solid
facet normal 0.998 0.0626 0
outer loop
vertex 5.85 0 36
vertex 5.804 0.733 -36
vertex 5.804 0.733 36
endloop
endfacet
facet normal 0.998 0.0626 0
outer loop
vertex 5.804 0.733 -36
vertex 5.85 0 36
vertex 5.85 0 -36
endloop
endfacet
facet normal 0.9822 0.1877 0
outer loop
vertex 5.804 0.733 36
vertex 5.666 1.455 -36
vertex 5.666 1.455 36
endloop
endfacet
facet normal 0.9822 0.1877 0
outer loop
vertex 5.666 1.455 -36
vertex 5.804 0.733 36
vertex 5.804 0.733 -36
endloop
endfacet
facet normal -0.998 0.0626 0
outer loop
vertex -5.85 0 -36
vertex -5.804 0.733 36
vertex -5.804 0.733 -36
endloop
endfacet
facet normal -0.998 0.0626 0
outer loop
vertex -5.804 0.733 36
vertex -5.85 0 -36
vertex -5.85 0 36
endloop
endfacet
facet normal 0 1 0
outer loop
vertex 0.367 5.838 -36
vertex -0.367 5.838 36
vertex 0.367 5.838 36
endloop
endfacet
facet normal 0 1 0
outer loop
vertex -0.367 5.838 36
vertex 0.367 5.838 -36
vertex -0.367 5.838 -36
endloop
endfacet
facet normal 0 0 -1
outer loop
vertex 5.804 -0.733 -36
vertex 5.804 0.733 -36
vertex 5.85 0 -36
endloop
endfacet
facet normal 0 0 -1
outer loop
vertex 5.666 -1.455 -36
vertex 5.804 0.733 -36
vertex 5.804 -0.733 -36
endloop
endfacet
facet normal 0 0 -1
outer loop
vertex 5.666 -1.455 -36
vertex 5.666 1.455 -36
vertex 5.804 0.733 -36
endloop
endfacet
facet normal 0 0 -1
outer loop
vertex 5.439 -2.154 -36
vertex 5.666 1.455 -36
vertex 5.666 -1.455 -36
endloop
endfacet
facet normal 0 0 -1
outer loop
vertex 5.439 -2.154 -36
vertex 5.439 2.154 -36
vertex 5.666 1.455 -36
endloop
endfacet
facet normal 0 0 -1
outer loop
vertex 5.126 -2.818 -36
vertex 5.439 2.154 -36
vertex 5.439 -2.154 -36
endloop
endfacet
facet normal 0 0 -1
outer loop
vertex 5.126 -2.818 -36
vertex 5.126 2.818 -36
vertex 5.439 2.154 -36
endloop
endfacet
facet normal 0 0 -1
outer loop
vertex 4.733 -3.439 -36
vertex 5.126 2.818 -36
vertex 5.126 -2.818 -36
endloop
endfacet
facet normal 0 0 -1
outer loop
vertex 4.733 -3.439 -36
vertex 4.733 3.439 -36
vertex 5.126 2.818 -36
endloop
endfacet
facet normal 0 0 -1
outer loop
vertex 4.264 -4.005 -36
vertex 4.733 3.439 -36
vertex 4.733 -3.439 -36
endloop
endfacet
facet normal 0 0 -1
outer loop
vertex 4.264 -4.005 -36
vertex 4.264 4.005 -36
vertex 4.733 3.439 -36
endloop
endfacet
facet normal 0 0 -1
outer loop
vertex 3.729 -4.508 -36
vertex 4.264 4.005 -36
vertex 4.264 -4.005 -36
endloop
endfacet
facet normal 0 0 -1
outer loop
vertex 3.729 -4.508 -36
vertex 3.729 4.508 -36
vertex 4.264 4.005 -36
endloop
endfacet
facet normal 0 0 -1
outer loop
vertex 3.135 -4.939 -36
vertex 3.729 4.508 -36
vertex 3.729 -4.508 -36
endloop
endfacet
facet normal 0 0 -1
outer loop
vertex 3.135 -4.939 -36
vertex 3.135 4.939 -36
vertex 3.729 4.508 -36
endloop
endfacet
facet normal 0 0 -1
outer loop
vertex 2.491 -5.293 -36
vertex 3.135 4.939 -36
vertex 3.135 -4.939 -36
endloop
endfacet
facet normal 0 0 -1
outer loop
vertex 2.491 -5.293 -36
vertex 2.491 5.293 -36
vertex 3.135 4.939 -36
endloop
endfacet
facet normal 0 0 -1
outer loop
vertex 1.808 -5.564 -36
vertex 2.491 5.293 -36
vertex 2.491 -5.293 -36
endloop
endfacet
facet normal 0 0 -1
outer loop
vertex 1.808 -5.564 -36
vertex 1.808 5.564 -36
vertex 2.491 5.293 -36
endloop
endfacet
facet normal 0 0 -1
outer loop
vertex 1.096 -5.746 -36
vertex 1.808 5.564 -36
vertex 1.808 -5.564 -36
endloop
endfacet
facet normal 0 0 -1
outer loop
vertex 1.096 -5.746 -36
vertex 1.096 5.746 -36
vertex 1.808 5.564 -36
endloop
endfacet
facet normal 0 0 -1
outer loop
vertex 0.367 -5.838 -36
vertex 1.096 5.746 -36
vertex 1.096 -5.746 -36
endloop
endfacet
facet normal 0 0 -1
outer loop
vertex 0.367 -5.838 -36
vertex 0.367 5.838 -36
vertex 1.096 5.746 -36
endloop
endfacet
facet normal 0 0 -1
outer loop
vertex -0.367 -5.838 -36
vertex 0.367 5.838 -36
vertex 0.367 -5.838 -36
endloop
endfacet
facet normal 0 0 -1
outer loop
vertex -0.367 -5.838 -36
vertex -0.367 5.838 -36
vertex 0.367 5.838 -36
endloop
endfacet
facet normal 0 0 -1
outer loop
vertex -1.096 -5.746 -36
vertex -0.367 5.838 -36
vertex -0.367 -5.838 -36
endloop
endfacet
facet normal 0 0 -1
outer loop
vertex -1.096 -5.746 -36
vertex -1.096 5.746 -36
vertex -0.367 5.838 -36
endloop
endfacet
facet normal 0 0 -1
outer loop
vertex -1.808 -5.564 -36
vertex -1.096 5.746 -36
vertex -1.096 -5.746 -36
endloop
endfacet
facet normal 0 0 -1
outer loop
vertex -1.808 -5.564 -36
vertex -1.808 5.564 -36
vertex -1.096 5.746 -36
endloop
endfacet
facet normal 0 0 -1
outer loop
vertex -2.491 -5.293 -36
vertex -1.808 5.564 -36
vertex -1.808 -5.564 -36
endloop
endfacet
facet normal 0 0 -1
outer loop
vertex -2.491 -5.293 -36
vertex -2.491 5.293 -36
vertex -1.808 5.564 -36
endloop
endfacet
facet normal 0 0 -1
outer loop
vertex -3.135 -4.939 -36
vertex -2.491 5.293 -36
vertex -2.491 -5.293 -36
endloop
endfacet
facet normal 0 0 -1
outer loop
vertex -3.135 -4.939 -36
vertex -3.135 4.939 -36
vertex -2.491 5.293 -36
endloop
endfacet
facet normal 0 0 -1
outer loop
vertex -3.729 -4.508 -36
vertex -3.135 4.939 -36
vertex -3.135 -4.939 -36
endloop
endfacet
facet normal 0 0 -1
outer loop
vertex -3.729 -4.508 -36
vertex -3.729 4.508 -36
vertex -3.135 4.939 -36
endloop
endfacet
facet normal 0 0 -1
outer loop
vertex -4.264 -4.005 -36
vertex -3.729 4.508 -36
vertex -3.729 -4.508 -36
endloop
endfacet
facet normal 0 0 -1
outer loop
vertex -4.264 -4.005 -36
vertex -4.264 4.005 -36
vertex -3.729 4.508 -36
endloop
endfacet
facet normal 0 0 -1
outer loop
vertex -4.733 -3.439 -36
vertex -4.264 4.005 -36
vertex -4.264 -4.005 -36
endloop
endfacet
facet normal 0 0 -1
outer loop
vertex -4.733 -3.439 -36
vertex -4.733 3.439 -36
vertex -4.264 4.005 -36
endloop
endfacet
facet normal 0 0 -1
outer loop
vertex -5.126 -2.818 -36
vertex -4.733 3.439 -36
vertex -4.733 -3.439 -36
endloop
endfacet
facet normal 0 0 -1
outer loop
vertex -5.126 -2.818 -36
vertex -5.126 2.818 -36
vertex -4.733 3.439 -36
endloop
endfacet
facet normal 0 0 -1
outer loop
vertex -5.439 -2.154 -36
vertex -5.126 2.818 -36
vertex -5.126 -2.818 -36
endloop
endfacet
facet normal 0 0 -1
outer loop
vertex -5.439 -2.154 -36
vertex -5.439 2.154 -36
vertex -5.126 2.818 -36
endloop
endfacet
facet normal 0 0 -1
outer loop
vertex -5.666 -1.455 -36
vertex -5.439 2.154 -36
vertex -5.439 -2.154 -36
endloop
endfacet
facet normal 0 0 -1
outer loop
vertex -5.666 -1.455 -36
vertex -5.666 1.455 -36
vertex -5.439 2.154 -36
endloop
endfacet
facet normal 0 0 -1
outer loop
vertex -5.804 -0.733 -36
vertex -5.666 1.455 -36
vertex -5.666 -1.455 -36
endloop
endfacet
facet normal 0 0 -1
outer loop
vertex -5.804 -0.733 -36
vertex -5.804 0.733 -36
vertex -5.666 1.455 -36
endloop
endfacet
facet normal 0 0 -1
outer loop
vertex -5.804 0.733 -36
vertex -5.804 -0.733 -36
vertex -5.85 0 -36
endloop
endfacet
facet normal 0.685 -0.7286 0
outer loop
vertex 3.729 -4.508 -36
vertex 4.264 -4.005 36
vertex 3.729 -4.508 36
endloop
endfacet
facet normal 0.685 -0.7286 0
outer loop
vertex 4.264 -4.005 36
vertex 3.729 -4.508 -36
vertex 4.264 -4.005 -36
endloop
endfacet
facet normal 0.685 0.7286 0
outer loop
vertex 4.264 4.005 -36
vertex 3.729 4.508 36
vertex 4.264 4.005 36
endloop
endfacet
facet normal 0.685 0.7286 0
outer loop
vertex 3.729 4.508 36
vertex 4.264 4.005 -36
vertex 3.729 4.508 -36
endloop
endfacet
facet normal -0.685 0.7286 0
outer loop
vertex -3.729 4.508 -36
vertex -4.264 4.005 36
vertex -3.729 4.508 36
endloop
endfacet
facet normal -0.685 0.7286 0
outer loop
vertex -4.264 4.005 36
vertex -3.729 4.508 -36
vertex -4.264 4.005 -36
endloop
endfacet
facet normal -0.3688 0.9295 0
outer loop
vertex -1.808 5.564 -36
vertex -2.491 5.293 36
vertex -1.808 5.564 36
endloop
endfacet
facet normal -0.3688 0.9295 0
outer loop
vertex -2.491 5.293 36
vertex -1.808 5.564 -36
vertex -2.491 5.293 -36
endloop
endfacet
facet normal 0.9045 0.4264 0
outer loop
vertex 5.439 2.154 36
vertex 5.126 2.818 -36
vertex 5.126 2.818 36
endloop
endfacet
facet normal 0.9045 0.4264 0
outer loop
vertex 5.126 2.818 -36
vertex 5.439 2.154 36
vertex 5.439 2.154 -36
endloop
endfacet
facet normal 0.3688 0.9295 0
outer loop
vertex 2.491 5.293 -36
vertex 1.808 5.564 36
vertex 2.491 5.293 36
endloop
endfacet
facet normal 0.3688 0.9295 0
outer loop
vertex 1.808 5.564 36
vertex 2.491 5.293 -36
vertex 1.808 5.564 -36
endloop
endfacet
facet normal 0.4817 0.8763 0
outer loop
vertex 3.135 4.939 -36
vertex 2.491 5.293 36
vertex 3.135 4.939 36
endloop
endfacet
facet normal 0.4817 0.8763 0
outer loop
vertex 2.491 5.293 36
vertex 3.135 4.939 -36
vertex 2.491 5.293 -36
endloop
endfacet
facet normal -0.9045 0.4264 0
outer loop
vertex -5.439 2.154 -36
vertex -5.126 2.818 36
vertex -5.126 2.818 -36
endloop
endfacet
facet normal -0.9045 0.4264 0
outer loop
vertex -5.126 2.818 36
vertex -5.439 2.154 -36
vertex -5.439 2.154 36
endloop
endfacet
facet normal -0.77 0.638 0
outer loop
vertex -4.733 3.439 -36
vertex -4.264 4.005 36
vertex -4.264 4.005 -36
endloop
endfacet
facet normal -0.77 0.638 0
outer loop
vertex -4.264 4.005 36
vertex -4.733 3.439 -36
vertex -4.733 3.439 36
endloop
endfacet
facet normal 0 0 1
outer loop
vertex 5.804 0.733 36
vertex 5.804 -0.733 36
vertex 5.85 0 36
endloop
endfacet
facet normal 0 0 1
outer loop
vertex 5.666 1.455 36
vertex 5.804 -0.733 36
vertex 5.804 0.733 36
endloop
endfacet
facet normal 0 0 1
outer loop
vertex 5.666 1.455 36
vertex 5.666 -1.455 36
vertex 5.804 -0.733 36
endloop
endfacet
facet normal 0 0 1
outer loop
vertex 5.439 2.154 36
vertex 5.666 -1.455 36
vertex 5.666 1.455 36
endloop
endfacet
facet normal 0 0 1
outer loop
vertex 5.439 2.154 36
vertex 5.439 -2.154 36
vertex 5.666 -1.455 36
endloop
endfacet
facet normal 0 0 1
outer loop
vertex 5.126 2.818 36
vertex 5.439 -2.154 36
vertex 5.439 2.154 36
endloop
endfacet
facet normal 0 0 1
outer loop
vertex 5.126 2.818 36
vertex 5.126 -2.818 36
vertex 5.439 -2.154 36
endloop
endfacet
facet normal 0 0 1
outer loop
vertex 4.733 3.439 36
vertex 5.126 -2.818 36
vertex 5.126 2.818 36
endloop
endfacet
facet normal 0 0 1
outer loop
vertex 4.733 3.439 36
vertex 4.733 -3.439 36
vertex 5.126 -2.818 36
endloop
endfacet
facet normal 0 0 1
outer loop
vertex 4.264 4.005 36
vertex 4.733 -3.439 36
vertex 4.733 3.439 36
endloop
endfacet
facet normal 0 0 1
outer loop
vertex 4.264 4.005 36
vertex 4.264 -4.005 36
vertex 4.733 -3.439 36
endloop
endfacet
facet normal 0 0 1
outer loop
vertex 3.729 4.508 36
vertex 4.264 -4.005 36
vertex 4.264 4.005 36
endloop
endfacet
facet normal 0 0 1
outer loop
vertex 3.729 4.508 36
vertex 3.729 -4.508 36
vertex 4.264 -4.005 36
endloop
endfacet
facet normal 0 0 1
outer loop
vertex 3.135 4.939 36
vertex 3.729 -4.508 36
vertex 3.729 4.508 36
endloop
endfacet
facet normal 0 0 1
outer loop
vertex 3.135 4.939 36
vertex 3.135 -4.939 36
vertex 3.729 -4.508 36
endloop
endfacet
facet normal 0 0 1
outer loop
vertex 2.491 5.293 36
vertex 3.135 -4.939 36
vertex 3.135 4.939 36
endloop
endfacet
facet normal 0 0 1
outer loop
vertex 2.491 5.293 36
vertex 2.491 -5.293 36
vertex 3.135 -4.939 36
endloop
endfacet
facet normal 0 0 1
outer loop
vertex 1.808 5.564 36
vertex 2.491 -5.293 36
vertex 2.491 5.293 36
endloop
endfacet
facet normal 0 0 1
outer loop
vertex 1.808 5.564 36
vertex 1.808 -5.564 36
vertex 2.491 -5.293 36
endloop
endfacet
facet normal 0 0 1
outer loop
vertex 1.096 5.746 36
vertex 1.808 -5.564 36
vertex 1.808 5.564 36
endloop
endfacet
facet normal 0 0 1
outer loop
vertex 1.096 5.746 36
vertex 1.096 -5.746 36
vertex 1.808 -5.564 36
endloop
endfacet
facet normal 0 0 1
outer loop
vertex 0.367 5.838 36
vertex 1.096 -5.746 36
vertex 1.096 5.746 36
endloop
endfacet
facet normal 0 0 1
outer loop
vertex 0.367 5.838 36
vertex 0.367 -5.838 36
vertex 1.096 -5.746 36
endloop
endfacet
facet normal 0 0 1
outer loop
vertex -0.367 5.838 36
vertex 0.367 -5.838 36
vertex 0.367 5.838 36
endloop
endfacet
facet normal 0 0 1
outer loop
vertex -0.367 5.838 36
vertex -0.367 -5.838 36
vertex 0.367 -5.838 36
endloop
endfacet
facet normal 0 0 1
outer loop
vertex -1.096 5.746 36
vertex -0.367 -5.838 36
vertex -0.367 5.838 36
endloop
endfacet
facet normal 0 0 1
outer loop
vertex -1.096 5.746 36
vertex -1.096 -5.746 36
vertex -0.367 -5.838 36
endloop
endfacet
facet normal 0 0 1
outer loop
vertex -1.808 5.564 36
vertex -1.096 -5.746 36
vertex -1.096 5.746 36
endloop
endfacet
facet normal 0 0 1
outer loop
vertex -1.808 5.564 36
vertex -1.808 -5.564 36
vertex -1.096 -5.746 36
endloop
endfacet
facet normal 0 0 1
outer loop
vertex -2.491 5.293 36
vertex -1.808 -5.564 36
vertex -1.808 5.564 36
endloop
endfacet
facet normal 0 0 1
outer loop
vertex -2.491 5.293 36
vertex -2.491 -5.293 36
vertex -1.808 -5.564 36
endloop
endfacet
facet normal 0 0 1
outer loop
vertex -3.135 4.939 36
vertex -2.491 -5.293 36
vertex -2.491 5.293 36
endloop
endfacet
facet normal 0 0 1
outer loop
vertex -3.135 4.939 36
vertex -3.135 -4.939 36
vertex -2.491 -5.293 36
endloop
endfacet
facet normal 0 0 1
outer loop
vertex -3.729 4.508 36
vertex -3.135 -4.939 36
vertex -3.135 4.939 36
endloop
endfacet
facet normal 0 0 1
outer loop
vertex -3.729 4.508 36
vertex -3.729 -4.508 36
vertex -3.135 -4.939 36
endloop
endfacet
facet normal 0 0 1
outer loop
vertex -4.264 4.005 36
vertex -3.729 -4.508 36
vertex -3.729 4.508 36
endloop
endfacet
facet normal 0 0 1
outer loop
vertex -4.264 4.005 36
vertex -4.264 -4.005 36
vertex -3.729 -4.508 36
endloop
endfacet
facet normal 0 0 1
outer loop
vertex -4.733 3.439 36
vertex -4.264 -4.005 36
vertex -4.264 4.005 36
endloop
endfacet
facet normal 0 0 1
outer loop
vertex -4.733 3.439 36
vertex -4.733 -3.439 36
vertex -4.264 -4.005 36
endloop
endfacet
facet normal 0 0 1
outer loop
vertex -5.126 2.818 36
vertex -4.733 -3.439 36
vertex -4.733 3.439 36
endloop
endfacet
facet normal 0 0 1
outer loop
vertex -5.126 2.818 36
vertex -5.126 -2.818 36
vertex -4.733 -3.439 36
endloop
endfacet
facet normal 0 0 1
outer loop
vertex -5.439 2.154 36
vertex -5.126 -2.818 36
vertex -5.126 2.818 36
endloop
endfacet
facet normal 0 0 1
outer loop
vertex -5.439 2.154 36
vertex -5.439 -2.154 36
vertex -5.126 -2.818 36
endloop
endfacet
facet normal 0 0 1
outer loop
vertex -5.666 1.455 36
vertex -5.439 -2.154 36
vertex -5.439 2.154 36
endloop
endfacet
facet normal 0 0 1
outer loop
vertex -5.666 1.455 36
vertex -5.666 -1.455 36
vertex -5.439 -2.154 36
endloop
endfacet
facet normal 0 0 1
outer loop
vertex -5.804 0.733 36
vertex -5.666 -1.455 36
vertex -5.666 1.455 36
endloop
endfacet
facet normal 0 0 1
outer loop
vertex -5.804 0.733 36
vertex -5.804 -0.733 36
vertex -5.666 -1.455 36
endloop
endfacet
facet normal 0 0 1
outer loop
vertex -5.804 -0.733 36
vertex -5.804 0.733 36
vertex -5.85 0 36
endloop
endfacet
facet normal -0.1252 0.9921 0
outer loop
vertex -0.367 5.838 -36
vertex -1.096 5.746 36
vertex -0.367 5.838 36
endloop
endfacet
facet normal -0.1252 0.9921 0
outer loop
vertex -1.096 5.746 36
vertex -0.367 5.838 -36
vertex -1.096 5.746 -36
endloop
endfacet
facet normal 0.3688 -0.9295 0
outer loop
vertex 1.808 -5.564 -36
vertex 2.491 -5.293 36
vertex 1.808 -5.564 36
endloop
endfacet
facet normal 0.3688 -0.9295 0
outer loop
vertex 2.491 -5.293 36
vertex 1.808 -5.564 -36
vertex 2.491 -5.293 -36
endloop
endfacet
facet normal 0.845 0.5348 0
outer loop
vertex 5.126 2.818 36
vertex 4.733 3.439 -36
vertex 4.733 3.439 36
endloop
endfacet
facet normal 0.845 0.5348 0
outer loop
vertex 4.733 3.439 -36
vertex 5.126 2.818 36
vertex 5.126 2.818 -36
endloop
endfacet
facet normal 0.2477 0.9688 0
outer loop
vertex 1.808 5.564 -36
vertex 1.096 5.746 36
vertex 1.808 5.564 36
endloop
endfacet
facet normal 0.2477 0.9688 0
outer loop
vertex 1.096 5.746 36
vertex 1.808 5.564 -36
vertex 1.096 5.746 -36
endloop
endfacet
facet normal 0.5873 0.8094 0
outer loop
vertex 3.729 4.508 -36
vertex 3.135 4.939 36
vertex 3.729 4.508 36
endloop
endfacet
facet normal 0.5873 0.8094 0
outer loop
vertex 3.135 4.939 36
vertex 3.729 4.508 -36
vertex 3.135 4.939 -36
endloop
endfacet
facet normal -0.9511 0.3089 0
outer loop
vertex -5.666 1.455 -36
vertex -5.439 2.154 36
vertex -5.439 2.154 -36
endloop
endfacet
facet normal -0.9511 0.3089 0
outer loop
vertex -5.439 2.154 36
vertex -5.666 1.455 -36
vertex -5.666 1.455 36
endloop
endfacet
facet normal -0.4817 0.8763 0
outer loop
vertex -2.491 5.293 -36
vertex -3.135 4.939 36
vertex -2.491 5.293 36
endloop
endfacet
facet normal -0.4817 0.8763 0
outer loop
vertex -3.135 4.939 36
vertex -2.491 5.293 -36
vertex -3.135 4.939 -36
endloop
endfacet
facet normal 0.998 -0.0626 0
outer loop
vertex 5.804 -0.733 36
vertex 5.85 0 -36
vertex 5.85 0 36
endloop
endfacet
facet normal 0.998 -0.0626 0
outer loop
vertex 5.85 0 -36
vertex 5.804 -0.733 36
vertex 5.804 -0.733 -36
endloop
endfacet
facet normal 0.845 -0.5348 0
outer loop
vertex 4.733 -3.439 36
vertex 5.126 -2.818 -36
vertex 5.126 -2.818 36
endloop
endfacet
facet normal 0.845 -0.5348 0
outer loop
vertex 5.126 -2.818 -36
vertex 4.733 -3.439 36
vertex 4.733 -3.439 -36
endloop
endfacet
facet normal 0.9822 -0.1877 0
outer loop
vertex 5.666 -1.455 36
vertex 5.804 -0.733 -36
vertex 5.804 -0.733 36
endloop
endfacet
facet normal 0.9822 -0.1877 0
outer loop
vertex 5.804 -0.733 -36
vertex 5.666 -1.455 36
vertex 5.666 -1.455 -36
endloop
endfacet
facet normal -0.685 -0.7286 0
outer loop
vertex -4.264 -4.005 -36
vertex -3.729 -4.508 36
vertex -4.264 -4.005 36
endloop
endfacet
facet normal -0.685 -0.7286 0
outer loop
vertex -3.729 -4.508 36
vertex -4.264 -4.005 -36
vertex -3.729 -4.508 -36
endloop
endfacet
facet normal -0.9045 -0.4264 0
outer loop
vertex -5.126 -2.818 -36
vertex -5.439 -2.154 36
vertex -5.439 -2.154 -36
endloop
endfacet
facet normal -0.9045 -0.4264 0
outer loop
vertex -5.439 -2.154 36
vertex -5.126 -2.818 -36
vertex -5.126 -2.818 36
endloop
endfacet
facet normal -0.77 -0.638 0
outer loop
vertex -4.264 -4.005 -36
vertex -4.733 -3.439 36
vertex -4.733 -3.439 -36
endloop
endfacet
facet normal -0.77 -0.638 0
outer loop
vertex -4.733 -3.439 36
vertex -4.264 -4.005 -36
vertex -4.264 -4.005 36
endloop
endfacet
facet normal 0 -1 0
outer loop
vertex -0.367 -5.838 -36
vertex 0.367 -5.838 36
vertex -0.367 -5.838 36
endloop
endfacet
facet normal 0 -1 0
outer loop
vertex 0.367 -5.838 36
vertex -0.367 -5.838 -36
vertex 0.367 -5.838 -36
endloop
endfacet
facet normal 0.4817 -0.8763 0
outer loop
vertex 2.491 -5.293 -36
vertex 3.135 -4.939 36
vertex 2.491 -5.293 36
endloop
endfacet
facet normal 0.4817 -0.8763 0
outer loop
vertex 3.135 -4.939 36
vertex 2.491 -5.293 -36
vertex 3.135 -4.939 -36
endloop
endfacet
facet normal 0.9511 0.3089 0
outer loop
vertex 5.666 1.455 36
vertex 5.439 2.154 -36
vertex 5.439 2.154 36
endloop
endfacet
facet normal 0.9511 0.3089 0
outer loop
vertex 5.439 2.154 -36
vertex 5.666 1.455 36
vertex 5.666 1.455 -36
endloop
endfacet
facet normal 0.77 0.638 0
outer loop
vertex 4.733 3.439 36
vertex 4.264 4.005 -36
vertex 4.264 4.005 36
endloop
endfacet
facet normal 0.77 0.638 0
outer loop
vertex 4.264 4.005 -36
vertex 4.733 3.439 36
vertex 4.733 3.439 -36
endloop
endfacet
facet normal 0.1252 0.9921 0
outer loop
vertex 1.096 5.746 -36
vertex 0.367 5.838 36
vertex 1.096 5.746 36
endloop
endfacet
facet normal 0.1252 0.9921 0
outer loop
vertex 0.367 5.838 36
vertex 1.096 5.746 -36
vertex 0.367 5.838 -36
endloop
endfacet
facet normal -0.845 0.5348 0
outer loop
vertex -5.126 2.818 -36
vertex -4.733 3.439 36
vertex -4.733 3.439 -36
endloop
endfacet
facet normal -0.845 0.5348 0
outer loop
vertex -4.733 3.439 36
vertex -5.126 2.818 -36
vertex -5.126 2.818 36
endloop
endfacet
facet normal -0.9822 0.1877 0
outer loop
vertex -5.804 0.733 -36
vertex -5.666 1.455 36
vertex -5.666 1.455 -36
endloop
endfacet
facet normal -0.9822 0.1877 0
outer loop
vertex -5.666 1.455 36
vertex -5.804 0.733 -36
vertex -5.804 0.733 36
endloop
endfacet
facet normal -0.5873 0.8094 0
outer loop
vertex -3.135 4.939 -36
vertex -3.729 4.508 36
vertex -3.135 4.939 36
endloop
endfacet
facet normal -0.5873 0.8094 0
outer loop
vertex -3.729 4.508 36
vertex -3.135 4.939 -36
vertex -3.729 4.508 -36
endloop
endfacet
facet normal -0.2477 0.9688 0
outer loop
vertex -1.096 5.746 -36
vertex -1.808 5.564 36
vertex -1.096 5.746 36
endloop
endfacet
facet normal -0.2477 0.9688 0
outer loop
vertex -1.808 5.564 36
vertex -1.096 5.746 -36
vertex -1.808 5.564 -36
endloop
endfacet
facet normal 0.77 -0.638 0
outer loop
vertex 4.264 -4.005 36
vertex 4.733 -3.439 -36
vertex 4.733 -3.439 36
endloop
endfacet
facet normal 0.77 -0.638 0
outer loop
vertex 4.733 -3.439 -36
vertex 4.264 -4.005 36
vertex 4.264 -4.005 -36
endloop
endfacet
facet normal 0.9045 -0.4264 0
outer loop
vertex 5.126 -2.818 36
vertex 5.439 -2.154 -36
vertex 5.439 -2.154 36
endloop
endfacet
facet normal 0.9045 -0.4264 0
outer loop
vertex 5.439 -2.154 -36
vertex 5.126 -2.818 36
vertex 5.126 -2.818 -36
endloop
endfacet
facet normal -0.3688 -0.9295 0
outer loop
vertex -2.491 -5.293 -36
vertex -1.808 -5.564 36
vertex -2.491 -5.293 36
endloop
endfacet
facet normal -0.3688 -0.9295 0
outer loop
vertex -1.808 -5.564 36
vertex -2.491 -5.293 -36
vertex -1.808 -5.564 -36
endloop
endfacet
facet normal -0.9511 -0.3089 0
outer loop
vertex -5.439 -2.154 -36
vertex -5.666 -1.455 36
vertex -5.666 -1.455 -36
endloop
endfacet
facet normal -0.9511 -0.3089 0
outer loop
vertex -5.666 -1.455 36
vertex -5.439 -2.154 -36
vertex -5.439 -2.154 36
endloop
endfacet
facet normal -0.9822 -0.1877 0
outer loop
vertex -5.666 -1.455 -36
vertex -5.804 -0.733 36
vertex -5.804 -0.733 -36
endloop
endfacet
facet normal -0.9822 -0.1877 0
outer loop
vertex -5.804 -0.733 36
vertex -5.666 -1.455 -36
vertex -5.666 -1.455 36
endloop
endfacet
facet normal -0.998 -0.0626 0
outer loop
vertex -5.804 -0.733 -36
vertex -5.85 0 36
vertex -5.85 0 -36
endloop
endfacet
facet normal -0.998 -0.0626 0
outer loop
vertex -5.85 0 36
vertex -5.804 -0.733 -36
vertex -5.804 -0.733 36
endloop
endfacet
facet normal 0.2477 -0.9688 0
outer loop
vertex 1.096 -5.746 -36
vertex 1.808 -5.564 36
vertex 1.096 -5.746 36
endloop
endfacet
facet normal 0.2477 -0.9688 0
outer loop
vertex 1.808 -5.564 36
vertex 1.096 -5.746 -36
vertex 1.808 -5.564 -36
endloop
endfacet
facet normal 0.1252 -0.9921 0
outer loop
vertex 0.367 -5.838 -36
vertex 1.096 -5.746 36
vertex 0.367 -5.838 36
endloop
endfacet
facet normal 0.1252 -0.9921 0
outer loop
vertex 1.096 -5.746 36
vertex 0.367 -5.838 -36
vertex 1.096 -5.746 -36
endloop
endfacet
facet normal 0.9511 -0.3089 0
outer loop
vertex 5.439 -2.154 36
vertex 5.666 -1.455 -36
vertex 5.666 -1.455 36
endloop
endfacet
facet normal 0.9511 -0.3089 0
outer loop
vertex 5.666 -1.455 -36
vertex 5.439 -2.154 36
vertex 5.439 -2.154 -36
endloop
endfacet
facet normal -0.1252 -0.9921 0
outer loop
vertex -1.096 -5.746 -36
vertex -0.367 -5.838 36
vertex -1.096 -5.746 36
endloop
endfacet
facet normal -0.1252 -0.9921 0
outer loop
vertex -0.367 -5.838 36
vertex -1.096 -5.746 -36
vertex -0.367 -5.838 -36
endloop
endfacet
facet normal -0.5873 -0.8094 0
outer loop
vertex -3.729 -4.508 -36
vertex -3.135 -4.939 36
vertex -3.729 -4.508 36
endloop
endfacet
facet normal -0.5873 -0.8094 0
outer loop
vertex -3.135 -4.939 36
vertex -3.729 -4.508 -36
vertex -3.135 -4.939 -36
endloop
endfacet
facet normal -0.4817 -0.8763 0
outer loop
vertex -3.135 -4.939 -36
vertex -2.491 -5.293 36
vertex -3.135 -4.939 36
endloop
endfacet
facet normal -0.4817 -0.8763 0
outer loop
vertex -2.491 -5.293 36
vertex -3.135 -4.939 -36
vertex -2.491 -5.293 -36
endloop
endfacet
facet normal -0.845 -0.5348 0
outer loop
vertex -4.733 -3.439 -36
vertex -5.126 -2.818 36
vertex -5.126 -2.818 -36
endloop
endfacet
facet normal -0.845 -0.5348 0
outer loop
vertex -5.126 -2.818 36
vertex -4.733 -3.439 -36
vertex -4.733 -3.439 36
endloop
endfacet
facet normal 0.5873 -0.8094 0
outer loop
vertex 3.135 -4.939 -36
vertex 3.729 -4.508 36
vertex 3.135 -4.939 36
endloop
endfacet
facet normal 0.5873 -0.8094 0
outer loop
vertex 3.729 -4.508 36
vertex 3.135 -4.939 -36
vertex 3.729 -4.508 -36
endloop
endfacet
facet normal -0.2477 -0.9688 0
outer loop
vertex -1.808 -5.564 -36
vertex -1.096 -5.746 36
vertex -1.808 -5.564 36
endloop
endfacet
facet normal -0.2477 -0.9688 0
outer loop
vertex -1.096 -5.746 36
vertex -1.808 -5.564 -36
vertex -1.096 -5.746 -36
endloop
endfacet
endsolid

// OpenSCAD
$fn = 50;


difference() {
	union() {
		translate(v = [0, 0, -36.0000000000]) {
			cylinder(h = 72, r = 5.8500000000);
		}
	}
	union() {
		translate(v = [0, 0, -100.0000000000]) {
			cylinder(h = 200, r = 0);
		}
	}
}
